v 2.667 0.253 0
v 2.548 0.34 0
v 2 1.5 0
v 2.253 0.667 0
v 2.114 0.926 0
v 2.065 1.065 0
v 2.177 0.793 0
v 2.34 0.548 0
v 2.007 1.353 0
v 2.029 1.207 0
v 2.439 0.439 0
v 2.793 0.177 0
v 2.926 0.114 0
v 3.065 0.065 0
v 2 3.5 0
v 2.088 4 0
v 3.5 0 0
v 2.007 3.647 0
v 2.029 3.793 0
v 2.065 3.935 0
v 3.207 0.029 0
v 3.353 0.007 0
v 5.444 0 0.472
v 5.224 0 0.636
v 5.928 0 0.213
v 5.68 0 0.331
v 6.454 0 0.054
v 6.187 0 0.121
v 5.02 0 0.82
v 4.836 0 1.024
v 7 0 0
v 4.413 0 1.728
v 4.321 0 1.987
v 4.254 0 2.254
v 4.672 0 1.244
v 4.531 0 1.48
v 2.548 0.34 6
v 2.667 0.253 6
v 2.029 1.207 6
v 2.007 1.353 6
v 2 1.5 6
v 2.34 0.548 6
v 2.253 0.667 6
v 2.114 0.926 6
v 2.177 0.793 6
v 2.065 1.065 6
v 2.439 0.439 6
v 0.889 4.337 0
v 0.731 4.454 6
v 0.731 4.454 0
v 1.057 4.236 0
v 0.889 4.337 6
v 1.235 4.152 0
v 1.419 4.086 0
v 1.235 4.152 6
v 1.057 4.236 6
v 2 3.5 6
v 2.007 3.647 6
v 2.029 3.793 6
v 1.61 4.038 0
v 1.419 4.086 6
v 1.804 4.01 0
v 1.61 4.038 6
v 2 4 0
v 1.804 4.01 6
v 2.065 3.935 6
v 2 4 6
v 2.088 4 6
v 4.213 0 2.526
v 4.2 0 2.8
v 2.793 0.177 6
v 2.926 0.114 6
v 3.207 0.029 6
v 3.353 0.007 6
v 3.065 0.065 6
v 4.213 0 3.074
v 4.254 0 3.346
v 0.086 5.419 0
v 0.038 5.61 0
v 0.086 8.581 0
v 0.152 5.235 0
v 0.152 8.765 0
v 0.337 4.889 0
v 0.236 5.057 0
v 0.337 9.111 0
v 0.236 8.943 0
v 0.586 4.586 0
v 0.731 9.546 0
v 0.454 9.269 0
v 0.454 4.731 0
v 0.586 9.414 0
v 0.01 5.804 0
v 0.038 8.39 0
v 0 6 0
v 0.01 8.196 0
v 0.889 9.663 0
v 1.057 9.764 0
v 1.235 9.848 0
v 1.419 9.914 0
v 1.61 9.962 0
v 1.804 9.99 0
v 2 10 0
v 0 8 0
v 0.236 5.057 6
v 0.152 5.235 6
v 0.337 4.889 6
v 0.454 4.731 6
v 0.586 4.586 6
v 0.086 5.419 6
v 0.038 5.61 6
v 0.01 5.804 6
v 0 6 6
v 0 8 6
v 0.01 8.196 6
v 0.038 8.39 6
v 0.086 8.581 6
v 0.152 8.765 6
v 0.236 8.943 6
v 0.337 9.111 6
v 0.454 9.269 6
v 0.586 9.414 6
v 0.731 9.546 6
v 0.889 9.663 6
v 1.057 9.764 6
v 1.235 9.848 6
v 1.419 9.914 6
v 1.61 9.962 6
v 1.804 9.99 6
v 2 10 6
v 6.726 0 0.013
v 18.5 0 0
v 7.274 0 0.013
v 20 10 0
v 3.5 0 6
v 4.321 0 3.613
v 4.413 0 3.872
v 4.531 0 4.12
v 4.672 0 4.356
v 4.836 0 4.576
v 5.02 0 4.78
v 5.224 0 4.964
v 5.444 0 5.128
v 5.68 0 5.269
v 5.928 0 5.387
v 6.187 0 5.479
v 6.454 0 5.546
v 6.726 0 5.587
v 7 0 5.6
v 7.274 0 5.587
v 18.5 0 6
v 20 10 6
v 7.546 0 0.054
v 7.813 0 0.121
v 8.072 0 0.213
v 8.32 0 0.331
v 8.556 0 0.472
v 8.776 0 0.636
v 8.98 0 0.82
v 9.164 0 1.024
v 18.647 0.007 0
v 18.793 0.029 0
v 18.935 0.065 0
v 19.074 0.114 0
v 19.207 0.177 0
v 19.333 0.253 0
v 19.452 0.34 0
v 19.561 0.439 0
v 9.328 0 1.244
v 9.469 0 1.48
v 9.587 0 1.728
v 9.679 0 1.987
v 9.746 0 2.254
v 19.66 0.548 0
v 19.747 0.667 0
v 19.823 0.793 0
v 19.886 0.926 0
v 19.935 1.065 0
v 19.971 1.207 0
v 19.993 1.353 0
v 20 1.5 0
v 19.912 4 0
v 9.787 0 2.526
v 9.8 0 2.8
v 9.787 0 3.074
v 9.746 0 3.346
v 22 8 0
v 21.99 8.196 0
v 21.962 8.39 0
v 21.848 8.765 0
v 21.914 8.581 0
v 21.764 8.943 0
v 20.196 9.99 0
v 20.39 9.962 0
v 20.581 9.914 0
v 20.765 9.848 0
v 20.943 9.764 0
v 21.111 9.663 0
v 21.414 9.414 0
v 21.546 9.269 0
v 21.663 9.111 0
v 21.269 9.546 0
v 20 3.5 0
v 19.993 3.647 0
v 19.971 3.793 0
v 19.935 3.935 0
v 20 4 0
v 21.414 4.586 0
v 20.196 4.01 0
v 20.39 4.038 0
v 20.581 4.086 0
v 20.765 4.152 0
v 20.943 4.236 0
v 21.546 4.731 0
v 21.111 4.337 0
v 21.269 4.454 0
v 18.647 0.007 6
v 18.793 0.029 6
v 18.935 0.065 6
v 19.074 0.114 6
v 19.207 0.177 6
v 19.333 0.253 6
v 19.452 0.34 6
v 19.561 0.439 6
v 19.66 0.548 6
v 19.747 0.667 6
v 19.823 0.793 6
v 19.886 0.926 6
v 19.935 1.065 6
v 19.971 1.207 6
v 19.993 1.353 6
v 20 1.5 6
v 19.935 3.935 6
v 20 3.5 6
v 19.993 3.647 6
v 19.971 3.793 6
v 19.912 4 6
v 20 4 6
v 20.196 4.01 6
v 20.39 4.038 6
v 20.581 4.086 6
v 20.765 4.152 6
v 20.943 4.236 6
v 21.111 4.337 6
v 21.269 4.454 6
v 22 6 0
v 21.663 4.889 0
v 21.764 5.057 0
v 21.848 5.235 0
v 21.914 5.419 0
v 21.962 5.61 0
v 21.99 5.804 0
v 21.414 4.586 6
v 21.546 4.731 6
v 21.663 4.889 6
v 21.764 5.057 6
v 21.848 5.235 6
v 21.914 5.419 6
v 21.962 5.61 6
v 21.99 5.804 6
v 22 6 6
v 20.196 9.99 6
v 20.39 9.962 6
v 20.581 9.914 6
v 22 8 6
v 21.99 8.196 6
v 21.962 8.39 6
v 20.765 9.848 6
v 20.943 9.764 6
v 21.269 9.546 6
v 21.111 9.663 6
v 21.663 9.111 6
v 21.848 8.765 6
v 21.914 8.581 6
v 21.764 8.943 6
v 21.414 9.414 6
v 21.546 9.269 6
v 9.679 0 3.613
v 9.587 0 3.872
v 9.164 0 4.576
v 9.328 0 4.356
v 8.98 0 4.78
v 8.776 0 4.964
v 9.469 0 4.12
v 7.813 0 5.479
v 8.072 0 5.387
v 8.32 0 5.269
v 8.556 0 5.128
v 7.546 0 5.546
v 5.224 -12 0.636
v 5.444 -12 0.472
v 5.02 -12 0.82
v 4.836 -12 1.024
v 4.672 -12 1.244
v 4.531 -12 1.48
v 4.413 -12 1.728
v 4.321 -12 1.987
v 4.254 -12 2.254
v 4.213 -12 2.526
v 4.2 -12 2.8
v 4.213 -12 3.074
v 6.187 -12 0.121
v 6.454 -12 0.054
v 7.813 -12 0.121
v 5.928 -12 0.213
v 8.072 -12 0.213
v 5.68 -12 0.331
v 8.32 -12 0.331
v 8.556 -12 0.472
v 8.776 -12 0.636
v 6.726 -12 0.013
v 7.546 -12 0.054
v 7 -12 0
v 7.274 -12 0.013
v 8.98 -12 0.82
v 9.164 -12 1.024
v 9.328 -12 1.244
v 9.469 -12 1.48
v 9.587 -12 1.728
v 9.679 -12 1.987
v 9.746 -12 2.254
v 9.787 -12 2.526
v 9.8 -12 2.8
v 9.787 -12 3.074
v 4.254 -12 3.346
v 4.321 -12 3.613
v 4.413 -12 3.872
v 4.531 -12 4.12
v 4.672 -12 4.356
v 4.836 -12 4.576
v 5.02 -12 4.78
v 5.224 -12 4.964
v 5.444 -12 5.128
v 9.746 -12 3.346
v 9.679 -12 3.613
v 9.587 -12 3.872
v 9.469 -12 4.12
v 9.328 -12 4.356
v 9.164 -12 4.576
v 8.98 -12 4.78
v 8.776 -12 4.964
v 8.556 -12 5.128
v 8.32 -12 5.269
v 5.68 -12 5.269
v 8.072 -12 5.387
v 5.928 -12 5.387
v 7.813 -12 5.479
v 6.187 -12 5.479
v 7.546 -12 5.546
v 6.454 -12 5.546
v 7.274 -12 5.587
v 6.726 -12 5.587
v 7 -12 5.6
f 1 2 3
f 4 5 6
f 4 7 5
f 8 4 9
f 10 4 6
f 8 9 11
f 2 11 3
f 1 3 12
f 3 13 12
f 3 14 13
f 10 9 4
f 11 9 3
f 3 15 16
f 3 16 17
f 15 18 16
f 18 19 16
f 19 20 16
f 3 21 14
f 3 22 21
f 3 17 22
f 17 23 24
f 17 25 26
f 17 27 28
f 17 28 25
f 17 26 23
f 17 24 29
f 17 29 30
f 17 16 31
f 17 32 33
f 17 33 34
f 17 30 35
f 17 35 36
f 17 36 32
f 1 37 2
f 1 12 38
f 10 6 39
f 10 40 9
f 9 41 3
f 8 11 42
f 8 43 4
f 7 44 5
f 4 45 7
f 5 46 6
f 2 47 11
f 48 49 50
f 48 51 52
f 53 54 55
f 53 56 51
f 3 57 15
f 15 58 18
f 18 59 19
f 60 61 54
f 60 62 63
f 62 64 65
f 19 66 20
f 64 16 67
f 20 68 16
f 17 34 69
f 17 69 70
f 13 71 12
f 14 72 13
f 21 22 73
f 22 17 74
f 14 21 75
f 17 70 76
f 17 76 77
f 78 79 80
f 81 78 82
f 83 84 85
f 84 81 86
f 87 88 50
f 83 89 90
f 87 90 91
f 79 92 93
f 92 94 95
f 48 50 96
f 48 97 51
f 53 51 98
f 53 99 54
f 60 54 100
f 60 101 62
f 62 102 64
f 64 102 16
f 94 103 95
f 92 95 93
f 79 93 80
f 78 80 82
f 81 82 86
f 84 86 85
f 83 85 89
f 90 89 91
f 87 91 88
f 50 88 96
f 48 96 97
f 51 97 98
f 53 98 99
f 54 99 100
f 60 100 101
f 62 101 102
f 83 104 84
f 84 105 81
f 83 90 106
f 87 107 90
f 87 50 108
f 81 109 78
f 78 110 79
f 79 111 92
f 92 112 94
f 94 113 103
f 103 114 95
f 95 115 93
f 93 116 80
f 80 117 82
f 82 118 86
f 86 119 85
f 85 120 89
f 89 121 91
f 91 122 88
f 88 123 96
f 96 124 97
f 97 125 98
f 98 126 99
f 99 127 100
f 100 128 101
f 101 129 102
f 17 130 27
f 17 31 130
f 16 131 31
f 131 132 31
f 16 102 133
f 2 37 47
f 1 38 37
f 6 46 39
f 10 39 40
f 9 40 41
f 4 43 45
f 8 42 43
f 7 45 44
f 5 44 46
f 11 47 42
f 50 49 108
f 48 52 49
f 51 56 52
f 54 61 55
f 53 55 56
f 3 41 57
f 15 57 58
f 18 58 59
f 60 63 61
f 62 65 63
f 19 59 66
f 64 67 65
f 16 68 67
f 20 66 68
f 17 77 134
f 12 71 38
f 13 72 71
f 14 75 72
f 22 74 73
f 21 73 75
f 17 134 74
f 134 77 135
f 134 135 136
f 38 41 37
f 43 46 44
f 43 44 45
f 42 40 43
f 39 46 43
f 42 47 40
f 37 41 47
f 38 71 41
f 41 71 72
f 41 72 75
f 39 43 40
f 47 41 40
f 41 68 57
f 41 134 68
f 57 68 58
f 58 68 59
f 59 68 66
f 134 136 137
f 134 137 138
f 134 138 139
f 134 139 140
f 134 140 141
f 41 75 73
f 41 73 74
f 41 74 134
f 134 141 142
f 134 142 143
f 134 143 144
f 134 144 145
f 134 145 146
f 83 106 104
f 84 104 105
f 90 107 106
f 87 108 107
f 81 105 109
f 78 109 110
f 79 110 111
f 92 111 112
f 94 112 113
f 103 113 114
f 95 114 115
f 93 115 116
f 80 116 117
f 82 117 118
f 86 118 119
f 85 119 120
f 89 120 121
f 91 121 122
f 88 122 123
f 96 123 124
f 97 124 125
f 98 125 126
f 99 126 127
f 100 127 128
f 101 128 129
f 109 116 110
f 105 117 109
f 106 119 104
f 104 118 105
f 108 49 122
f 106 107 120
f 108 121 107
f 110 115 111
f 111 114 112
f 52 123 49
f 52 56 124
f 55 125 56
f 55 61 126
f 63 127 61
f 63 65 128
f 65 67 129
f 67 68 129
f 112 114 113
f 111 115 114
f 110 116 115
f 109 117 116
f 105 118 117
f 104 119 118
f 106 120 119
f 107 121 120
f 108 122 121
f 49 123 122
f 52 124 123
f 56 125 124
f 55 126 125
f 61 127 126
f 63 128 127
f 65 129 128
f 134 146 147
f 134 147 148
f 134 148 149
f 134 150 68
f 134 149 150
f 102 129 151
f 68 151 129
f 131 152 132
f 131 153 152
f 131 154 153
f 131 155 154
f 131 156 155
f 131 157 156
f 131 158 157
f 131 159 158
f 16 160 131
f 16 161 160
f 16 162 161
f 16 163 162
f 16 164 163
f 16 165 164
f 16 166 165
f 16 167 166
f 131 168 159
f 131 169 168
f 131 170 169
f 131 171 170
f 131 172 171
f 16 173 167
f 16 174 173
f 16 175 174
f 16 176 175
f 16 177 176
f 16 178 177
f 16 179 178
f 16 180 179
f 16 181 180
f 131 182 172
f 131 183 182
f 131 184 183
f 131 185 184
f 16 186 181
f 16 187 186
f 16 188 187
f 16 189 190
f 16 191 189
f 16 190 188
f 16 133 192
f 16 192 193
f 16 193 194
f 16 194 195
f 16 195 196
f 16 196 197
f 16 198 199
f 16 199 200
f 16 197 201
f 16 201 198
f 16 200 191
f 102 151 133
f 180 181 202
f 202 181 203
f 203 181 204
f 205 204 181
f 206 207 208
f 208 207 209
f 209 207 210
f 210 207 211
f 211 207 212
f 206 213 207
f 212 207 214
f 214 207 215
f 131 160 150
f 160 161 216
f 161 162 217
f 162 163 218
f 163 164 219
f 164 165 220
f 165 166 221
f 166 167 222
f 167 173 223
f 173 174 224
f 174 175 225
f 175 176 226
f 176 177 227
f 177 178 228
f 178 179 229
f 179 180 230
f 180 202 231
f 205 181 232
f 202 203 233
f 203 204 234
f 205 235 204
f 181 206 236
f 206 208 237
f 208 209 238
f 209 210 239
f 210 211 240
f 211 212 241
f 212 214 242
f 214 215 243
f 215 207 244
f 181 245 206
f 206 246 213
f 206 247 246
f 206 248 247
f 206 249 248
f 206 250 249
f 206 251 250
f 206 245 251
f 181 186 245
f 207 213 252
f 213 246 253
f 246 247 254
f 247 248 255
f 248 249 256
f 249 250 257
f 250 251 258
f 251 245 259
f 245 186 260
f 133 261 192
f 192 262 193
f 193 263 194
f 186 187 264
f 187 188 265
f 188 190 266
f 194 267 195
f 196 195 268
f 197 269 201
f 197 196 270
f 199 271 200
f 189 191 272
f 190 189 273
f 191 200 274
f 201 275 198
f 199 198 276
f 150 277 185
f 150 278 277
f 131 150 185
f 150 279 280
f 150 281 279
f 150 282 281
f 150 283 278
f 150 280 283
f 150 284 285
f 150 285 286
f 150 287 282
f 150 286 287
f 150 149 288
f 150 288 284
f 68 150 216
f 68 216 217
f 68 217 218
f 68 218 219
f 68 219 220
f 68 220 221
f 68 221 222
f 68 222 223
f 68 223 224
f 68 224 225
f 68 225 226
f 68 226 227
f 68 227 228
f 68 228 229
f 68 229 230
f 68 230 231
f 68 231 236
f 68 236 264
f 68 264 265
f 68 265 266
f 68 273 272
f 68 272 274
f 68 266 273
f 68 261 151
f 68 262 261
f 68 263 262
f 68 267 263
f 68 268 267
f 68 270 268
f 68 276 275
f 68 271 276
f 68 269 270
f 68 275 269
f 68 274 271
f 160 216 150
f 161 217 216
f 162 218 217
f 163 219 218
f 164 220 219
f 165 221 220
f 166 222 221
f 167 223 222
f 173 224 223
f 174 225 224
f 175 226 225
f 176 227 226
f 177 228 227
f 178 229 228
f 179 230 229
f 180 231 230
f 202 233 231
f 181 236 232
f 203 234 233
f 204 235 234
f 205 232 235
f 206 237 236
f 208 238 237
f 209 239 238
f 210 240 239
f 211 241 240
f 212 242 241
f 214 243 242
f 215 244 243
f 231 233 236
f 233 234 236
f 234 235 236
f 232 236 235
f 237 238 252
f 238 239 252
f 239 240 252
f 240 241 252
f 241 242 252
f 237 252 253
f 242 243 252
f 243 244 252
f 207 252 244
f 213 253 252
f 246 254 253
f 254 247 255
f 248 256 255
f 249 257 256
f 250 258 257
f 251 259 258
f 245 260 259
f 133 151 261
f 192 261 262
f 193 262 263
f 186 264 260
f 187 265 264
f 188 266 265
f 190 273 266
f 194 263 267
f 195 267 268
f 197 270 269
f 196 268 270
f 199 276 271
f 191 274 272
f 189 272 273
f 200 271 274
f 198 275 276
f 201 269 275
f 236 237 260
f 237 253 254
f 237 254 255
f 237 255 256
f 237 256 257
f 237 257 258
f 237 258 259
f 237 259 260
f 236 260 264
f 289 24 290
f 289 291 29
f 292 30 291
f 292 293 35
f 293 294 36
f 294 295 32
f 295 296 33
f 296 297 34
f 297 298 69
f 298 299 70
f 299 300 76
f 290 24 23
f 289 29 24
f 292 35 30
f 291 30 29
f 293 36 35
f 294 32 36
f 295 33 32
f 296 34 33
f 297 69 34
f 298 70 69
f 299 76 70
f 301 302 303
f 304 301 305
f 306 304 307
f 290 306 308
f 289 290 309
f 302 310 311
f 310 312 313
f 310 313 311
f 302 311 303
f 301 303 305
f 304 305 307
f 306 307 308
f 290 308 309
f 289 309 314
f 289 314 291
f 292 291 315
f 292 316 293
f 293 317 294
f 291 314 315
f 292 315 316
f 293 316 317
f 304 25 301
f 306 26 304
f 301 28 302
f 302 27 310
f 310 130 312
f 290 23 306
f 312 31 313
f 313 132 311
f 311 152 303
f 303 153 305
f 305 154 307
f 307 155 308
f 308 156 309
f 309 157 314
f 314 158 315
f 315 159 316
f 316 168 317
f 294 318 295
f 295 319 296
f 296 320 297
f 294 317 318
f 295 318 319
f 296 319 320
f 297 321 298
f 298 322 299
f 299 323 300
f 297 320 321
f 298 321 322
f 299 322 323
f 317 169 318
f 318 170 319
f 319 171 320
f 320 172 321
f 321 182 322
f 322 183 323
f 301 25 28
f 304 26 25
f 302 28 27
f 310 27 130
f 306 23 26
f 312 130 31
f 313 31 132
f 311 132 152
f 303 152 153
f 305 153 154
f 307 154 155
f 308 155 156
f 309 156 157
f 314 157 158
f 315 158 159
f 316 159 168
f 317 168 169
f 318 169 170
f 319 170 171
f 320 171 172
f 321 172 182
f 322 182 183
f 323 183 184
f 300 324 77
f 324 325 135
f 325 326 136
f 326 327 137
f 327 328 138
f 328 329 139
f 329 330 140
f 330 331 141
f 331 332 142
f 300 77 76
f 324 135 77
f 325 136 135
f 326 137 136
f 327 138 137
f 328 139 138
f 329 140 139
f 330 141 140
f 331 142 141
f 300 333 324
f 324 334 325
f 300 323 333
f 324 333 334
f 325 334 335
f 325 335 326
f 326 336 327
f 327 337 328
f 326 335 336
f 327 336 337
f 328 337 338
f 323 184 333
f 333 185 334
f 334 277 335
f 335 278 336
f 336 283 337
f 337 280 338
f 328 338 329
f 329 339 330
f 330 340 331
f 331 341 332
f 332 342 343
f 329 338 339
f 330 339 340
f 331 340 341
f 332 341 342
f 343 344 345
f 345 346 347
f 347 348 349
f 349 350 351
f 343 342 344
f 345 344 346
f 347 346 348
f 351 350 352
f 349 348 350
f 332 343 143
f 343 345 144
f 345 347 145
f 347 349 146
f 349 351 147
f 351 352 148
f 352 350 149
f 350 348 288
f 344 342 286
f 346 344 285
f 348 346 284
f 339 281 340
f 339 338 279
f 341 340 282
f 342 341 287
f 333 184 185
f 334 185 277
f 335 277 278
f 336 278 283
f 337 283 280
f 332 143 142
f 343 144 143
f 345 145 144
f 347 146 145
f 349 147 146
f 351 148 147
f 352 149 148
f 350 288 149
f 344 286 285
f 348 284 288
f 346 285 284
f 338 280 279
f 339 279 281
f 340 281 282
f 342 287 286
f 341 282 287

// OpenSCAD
// file: ../lib/soldier.scad
// toy-soldiers shared library
// All figures and weapons include this file. The grip interface constants
// are the contract: any weapon whose bar uses GRIP_BAR_D fits any figure
// whose hand uses GRIP_HOLE_D / GRIP_SLOT_W.

$fn = $preview ? 32 : 64;

// ---------------------------------------------------------------
// Grip interface — shared contract between figures and weapons
// ---------------------------------------------------------------
GRIP_BAR_D  = 5.6;  // weapon grip-bar diameter
GRIP_HOLE_D = 6.0;  // hand hole diameter (0.4mm clearance for FDM)
GRIP_SLOT_W = 5.3;  // C-opening width; bar snaps through the front
HAND_OD     = 11;   // hand outer diameter
HAND_H      = 9;    // hand height
GRIP_BAR_L  = 14;   // standard bar length (sticks out below the hand)

// ---------------------------------------------------------------
// Figure proportions (~70mm tall incl. base, +Y is forward)
// ---------------------------------------------------------------
BASE_D  = 26;  BASE_H  = 4;
LEG_H   = 22;  LEG_D   = 9;  HIP_X = 5.5;   // leg centre offset from middle
TORSO_H = 24;  TORSO_W = 20; TORSO_WAIST = 16; TORSO_D = 12;
HEAD_D  = 14;  NECK_H  = 3;

HIP_Z      = BASE_H + LEG_H;                 // 26
TORSO_Z0   = HIP_Z - 1;                      // torso overlaps hips 1mm
TORSO_Z1   = TORSO_Z0 + TORSO_H;             // 49
SHOULDER_Z = TORSO_Z1 - 3;                   // 46
SHOULDER_X = TORSO_W/2 + 1;                  // arm root
HEAD_CZ    = TORSO_Z1 + NECK_H + HEAD_D/2;   // head centre

// ---------------------------------------------------------------
// Primitives
// ---------------------------------------------------------------
module rounded_box(size, r=2)
    hull()
        for (x=[-1,1], y=[-1,1], z=[-1,1])
            translate([x*(size[0]/2-r), y*(size[1]/2-r), z*(size[2]/2-r)])
                sphere(r=r);

module limb(a, b, ra=4.5, rb=4)   // thick tapered limb between two points
    hull() { translate(a) sphere(r=ra); translate(b) sphere(r=rb); }

// ---------------------------------------------------------------
// Body parts
// ---------------------------------------------------------------
module base()
    cylinder(d1=BASE_D, d2=BASE_D-2, h=BASE_H);

module leg(x)
    union() {
        translate([x, 0, BASE_H-1]) cylinder(d=LEG_D, h=LEG_H+2);
        // boot: rests on the base, so no overhang
        translate([x, 3.5, BASE_H + 2.5]) rounded_box([LEG_D+1, 13, 5], 2);
    }

module torso()
    hull() {
        translate([0, 0, TORSO_Z0 + 2])
            rounded_box([TORSO_WAIST, TORSO_D-1, 4], 2);
        translate([0, 0, TORSO_Z1 - 2.5])
            rounded_box([TORSO_W, TORSO_D, 5], 2);
    }

module head() {
    // stout neck; the sphere's underside meets it at <45deg so no supports
    translate([0, 0, TORSO_Z1 - 1]) cylinder(d=9.5, h=NECK_H + 3);
    translate([0, 0, HEAD_CZ]) sphere(d=HEAD_D);
}

module helmet()
    translate([0, 0, HEAD_CZ + 1]) {
        difference() {
            sphere(d=HEAD_D + 3.5);
            translate([0, 0, -HEAD_D/2]) cube(HEAD_D*2, center=true);
        }
        // brim with 45-degree underside chamfer
        cylinder(d1=HEAD_D + 1, d2=HEAD_D + 5, h=2);
    }

module cap()   // officer's peaked cap
    translate([0, 0, HEAD_CZ + HEAD_D/2 - 3.5]) {
        cylinder(d1=HEAD_D - 0.5, d2=HEAD_D + 1.5, h=4);
        translate([0, 0, 4]) cylinder(d=HEAD_D + 2, h=1.5);
        // peak: wedge jutting over the face, 45deg chamfered underside
        hull() {
            translate([0, HEAD_D/2 - 2, 1.25]) cube([11, 2, 2.5], center=true);
            translate([0, HEAD_D/2 + 3, 2.25]) cube([9, 1, 1.2], center=true);
        }
    }

module backpack()
    translate([0, -TORSO_D/2, SHOULDER_Z - 6])
        hull() {   // sloped underside back to the torso — printable
            translate([0, -1, -4]) rounded_box([13, 2, 4], 1);
            translate([0, -4, 2]) rounded_box([14, 6, 10], 2);
        }

// C-shaped grip hand, hole axis vertical, opening faces +Y (forward)
module grip_hand()
    difference() {
        cylinder(d=HAND_OD, h=HAND_H, center=true);
        cylinder(d=GRIP_HOLE_D, h=HAND_H + 2, center=true);
        translate([0, HAND_OD/4 + 0.5, 0])
            cube([GRIP_SLOT_W, HAND_OD/2 + 2, HAND_H + 2], center=true);
    }

module fist()
    sphere(d=9);

// ---------------------------------------------------------------
// Arms — s = +1 right, -1 left. Poses avoid >45-degree overhangs.
// ---------------------------------------------------------------
module arm(s, pose) {
    sh = [s*SHOULDER_X, 0, SHOULDER_Z];

    if (pose == "grip_side") {          // hand at the hip
        w = [s*(SHOULDER_X + 3), 4, SHOULDER_Z - 14];
        limb(sh, w);
        translate(w + [0, 1, -4]) grip_hand();
    }
    else if (pose == "grip_forward") {  // hand forward at waist height
        w = [s*(SHOULDER_X + 1), 9, SHOULDER_Z - 12];
        limb(sh, w);
        translate(w + [0, 2, -4]) grip_hand();
    }
    else if (pose == "grip_up") {       // bent arm, hand at shoulder height
        e = [s*(SHOULDER_X + 2), 3, SHOULDER_Z - 11];
        w = [s*(SHOULDER_X + 2), 9, SHOULDER_Z - 2];
        limb(sh, e);
        limb(e, w, 4, 4);
        translate(w + [0, 2, 2]) grip_hand();
    }
    else if (pose == "fist_side") {
        w = [s*(SHOULDER_X + 3), 3, SHOULDER_Z - 15];
        limb(sh, w);
        translate(w + [0, 0, -3]) fist();
    }
    else if (pose == "fist_forward") {
        w = [s*(SHOULDER_X + 1), 8, SHOULDER_Z - 13];
        limb(sh, w);
        translate(w + [0, 2, -2]) fist();
    }
    else if (pose == "point_up") {      // raised arm, ~40 degrees off vertical
        w = [s*(SHOULDER_X + 5), 6, SHOULDER_Z + 9];
        limb(sh, w);
        translate(w) sphere(d=8);
        translate(w) rotate([-40, s*15, 0]) cylinder(d=5, h=7);
    }
}

// ---------------------------------------------------------------
// Assembled soldier
// ---------------------------------------------------------------
module soldier(right_arm="grip_side", left_arm="fist_side",
               headgear="helmet", pack=false) {
    base();
    leg(-HIP_X); leg(HIP_X);
    torso();
    head();
    if (headgear == "helmet") helmet();
    if (headgear == "cap") cap();
    if (pack) backpack();
    arm( 1, right_arm);
    arm(-1, left_arm);
}

// ---------------------------------------------------------------
// Weapon helper — weapons are modelled in PRINT orientation:
// lying flat on the bed (z=0), length along X, "up in use" is +Y.
// The bar rests tangent on the bed so nothing floats.
// ---------------------------------------------------------------
module grip_bar(x, y_top, len=GRIP_BAR_L)
    translate([x, y_top, GRIP_BAR_D/2])
        rotate([90, 0, 0]) cylinder(d=GRIP_BAR_D, h=len);
// main file
// Toy pistol — chunky sidearm, printed lying flat.
// The grip bar doubles as the pistol grip.
include <../lib/soldier.scad>

THK = 6;

module rrect(x0, y0, x1, y1, r=1.5)
    translate([(x0+x1)/2, (y0+y1)/2])
        offset(r=r) square([x1-x0-2*r, y1-y0-2*r], center=true);

linear_extrude(THK)
    union() {
        rrect( 0,  4, 22, 10, 2);   // slide
        rrect(22,  5.5, 26, 8.5);   // muzzle
        rrect( 2,  0, 20, 5);       // frame
        rrect(14, -2, 19, 1);       // trigger guard block
    }

grip_bar(7, 2);
